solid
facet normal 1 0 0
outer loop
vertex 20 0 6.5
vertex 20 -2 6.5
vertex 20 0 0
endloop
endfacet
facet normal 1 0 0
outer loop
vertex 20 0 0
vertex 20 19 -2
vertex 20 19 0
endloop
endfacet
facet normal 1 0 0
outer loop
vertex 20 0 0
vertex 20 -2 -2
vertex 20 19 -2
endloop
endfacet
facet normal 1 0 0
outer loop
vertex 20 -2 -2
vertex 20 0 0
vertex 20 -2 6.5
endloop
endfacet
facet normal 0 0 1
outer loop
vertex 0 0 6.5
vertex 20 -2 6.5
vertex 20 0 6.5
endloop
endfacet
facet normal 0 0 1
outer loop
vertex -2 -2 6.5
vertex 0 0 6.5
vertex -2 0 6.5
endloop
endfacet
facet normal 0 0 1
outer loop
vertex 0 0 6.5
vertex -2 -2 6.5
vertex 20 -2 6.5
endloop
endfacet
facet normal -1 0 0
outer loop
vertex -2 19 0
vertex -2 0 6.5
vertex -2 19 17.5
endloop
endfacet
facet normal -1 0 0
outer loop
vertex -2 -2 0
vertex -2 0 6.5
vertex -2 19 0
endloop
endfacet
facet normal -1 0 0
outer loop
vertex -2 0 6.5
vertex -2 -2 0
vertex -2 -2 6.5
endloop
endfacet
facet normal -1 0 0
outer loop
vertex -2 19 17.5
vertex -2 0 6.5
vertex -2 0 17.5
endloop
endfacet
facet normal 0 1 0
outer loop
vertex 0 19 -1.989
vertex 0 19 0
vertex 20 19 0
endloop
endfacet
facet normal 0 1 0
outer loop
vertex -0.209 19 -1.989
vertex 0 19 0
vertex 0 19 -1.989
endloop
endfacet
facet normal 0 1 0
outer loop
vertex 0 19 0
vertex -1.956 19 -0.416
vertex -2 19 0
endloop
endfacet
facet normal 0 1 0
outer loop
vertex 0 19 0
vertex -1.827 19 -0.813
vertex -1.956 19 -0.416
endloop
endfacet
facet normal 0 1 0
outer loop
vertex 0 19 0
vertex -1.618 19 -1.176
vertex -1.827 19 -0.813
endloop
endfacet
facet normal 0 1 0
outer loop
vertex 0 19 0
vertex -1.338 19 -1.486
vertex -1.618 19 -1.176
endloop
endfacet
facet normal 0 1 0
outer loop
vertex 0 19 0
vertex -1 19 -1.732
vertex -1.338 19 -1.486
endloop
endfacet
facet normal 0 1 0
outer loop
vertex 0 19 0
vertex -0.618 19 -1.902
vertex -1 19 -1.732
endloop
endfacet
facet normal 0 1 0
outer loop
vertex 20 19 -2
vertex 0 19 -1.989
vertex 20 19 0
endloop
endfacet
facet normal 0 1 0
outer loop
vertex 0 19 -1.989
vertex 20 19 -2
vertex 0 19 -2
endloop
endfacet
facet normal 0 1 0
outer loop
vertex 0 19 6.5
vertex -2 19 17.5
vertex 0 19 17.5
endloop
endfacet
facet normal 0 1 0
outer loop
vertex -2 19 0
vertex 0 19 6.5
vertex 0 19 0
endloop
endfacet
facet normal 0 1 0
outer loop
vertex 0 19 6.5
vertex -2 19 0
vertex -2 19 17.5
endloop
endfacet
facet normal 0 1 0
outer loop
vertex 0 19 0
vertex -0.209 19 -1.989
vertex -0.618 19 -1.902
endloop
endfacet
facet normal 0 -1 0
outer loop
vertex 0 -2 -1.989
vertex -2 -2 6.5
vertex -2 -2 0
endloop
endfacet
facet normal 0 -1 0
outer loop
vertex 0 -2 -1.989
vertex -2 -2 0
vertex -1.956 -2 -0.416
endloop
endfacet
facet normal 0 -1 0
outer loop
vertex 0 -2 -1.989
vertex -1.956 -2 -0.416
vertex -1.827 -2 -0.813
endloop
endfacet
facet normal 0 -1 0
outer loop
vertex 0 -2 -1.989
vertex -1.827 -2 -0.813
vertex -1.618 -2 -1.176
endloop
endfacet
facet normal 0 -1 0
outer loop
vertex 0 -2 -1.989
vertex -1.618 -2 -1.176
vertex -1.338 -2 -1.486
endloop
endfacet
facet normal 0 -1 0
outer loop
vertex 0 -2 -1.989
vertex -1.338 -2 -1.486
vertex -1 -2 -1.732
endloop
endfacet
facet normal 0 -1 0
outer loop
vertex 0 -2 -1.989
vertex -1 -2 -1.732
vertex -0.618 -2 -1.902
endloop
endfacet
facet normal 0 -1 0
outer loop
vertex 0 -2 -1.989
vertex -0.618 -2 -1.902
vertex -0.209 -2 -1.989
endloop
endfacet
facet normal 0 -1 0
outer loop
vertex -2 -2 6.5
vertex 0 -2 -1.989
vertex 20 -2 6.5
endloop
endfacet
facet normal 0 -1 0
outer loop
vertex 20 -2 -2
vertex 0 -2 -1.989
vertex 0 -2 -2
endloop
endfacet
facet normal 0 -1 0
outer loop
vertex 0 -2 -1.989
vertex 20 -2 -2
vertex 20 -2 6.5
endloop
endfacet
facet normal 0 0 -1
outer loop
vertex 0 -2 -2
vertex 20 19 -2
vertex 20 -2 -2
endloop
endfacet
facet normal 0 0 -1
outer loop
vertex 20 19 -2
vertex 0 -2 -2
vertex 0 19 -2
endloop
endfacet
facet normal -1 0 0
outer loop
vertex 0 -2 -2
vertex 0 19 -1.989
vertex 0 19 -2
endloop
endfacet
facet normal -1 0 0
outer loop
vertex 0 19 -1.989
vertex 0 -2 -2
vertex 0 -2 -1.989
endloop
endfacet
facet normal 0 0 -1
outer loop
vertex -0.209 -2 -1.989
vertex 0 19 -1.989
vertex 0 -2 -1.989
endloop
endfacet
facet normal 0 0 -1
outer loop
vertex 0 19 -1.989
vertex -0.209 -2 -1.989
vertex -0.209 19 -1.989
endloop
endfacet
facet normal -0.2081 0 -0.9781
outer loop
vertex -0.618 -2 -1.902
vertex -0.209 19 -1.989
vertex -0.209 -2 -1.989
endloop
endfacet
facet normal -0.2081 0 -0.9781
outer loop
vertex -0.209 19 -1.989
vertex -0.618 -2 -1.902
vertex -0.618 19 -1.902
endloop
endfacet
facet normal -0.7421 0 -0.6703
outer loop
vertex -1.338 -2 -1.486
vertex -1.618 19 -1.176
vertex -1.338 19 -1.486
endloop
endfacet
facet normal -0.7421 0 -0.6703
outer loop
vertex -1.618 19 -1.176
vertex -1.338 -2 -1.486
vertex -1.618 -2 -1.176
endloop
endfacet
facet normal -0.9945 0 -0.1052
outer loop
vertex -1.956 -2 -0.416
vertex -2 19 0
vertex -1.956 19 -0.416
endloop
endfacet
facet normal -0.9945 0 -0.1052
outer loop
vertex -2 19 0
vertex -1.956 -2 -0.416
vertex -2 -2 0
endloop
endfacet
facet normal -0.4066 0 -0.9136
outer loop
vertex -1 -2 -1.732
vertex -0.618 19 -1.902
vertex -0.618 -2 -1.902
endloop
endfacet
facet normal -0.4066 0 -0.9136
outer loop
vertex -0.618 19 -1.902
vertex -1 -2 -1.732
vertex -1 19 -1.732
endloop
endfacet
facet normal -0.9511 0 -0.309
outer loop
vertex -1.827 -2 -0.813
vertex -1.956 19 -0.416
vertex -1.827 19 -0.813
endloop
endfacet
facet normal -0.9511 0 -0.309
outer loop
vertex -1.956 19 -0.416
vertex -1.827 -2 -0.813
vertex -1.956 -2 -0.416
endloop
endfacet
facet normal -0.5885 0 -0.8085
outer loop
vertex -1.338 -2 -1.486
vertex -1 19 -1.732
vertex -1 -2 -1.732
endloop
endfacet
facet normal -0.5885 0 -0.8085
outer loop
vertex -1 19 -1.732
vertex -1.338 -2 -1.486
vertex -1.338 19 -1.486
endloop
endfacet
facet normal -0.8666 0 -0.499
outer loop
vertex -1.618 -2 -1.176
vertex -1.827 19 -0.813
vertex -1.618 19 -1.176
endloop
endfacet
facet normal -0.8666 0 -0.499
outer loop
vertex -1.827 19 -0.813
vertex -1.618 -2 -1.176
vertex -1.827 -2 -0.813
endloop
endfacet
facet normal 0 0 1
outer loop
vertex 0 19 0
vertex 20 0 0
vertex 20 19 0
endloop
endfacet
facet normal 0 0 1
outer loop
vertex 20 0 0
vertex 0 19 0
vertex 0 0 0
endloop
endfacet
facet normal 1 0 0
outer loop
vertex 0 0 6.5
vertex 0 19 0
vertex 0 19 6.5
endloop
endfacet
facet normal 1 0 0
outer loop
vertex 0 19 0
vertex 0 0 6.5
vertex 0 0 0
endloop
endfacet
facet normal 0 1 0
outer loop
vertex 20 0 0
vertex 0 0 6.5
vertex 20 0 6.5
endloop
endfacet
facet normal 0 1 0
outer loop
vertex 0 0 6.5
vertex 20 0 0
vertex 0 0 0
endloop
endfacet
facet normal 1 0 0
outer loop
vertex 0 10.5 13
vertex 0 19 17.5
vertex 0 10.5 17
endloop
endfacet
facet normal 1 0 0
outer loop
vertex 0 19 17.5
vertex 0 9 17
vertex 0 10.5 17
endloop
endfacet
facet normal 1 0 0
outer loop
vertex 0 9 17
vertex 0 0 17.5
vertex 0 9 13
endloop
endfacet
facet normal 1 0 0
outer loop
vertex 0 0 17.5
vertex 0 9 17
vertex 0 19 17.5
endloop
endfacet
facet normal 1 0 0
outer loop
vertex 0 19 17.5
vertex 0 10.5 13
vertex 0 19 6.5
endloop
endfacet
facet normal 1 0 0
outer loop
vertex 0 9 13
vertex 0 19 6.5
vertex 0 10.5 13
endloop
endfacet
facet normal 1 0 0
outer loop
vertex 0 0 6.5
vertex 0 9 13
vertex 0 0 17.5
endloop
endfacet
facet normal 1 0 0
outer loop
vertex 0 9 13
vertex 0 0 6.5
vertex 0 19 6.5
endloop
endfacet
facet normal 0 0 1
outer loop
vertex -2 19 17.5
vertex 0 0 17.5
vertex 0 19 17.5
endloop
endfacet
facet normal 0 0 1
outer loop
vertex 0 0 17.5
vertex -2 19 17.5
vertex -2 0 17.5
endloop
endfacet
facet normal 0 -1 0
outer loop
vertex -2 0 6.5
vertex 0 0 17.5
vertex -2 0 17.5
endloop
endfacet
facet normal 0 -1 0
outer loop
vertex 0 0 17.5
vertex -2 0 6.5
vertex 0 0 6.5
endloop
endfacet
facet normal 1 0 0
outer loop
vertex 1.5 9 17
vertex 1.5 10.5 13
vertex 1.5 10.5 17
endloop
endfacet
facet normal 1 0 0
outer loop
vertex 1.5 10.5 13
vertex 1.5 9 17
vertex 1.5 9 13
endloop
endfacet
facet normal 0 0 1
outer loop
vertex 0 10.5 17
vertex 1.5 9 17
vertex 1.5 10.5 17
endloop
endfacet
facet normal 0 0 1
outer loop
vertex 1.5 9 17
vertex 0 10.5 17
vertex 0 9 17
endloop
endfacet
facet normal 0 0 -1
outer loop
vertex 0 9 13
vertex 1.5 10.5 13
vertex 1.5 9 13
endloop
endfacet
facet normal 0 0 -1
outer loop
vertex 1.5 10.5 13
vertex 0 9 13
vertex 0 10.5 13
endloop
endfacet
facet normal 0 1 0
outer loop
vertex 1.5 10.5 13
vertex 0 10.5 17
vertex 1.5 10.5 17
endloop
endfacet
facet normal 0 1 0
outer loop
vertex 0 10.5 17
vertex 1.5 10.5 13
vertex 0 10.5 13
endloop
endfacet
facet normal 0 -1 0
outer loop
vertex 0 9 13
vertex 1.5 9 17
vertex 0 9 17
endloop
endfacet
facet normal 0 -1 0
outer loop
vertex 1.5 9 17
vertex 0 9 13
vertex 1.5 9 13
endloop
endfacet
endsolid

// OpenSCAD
//
// ktRack26
//
//


gap1 = 0.001;
gap2 = 0.002;

th = 2;



A();
//UNIT();


module A()
{
difference()
{
    union()
    {
        translate([-th, -th, -th+th]) cube([th+20, th+19, th+6.50-th]);
        translate([-th+th, -th, -th]) cube([th+20-th, th+19, th+6.5]);
        translate([0, 19, 0]) rotate([90, 0, 0]) cylinder( th+19, th, th, $fn=30 );
        
    }

    UNIT();
    
    //#translate([2, -th/2, 0]) cube([16, th/2, 5]);
    //#translate([7, -th*2, 1]) cube([8, th*3, 2.5]);
}
    translate([-th, -th+th, th+6.50-th]) cube([th, th+19-th, 11]);
    translate([-th, 9, th+6.50-th+7-0.5]) cube([th+1.5, 1.5, 4]);
}


module B()
{
difference()
{
    union()
    {
        translate([0, 0, 59-20]) cube([35, 50, 20]);
        translate([0, -40, 0]) cube([35, 40, 70]);
    }
    translate([-10, -40-80, -50]) rotate([15, 0, 0]) cube([100, 100, 100]);
    translate([-10, -11, -50]) rotate([-10, 0, 0]) cube([100, 50, 70]);
    
    SAKU();
}
}



module UNIT()
{
difference()
{
    union()
    {
        cube([120, 19, 90]);
        //color("#0000FF") translate([7, -0.5, 1]) cube([8, 0.5, 2.5]);
    }
}
}
